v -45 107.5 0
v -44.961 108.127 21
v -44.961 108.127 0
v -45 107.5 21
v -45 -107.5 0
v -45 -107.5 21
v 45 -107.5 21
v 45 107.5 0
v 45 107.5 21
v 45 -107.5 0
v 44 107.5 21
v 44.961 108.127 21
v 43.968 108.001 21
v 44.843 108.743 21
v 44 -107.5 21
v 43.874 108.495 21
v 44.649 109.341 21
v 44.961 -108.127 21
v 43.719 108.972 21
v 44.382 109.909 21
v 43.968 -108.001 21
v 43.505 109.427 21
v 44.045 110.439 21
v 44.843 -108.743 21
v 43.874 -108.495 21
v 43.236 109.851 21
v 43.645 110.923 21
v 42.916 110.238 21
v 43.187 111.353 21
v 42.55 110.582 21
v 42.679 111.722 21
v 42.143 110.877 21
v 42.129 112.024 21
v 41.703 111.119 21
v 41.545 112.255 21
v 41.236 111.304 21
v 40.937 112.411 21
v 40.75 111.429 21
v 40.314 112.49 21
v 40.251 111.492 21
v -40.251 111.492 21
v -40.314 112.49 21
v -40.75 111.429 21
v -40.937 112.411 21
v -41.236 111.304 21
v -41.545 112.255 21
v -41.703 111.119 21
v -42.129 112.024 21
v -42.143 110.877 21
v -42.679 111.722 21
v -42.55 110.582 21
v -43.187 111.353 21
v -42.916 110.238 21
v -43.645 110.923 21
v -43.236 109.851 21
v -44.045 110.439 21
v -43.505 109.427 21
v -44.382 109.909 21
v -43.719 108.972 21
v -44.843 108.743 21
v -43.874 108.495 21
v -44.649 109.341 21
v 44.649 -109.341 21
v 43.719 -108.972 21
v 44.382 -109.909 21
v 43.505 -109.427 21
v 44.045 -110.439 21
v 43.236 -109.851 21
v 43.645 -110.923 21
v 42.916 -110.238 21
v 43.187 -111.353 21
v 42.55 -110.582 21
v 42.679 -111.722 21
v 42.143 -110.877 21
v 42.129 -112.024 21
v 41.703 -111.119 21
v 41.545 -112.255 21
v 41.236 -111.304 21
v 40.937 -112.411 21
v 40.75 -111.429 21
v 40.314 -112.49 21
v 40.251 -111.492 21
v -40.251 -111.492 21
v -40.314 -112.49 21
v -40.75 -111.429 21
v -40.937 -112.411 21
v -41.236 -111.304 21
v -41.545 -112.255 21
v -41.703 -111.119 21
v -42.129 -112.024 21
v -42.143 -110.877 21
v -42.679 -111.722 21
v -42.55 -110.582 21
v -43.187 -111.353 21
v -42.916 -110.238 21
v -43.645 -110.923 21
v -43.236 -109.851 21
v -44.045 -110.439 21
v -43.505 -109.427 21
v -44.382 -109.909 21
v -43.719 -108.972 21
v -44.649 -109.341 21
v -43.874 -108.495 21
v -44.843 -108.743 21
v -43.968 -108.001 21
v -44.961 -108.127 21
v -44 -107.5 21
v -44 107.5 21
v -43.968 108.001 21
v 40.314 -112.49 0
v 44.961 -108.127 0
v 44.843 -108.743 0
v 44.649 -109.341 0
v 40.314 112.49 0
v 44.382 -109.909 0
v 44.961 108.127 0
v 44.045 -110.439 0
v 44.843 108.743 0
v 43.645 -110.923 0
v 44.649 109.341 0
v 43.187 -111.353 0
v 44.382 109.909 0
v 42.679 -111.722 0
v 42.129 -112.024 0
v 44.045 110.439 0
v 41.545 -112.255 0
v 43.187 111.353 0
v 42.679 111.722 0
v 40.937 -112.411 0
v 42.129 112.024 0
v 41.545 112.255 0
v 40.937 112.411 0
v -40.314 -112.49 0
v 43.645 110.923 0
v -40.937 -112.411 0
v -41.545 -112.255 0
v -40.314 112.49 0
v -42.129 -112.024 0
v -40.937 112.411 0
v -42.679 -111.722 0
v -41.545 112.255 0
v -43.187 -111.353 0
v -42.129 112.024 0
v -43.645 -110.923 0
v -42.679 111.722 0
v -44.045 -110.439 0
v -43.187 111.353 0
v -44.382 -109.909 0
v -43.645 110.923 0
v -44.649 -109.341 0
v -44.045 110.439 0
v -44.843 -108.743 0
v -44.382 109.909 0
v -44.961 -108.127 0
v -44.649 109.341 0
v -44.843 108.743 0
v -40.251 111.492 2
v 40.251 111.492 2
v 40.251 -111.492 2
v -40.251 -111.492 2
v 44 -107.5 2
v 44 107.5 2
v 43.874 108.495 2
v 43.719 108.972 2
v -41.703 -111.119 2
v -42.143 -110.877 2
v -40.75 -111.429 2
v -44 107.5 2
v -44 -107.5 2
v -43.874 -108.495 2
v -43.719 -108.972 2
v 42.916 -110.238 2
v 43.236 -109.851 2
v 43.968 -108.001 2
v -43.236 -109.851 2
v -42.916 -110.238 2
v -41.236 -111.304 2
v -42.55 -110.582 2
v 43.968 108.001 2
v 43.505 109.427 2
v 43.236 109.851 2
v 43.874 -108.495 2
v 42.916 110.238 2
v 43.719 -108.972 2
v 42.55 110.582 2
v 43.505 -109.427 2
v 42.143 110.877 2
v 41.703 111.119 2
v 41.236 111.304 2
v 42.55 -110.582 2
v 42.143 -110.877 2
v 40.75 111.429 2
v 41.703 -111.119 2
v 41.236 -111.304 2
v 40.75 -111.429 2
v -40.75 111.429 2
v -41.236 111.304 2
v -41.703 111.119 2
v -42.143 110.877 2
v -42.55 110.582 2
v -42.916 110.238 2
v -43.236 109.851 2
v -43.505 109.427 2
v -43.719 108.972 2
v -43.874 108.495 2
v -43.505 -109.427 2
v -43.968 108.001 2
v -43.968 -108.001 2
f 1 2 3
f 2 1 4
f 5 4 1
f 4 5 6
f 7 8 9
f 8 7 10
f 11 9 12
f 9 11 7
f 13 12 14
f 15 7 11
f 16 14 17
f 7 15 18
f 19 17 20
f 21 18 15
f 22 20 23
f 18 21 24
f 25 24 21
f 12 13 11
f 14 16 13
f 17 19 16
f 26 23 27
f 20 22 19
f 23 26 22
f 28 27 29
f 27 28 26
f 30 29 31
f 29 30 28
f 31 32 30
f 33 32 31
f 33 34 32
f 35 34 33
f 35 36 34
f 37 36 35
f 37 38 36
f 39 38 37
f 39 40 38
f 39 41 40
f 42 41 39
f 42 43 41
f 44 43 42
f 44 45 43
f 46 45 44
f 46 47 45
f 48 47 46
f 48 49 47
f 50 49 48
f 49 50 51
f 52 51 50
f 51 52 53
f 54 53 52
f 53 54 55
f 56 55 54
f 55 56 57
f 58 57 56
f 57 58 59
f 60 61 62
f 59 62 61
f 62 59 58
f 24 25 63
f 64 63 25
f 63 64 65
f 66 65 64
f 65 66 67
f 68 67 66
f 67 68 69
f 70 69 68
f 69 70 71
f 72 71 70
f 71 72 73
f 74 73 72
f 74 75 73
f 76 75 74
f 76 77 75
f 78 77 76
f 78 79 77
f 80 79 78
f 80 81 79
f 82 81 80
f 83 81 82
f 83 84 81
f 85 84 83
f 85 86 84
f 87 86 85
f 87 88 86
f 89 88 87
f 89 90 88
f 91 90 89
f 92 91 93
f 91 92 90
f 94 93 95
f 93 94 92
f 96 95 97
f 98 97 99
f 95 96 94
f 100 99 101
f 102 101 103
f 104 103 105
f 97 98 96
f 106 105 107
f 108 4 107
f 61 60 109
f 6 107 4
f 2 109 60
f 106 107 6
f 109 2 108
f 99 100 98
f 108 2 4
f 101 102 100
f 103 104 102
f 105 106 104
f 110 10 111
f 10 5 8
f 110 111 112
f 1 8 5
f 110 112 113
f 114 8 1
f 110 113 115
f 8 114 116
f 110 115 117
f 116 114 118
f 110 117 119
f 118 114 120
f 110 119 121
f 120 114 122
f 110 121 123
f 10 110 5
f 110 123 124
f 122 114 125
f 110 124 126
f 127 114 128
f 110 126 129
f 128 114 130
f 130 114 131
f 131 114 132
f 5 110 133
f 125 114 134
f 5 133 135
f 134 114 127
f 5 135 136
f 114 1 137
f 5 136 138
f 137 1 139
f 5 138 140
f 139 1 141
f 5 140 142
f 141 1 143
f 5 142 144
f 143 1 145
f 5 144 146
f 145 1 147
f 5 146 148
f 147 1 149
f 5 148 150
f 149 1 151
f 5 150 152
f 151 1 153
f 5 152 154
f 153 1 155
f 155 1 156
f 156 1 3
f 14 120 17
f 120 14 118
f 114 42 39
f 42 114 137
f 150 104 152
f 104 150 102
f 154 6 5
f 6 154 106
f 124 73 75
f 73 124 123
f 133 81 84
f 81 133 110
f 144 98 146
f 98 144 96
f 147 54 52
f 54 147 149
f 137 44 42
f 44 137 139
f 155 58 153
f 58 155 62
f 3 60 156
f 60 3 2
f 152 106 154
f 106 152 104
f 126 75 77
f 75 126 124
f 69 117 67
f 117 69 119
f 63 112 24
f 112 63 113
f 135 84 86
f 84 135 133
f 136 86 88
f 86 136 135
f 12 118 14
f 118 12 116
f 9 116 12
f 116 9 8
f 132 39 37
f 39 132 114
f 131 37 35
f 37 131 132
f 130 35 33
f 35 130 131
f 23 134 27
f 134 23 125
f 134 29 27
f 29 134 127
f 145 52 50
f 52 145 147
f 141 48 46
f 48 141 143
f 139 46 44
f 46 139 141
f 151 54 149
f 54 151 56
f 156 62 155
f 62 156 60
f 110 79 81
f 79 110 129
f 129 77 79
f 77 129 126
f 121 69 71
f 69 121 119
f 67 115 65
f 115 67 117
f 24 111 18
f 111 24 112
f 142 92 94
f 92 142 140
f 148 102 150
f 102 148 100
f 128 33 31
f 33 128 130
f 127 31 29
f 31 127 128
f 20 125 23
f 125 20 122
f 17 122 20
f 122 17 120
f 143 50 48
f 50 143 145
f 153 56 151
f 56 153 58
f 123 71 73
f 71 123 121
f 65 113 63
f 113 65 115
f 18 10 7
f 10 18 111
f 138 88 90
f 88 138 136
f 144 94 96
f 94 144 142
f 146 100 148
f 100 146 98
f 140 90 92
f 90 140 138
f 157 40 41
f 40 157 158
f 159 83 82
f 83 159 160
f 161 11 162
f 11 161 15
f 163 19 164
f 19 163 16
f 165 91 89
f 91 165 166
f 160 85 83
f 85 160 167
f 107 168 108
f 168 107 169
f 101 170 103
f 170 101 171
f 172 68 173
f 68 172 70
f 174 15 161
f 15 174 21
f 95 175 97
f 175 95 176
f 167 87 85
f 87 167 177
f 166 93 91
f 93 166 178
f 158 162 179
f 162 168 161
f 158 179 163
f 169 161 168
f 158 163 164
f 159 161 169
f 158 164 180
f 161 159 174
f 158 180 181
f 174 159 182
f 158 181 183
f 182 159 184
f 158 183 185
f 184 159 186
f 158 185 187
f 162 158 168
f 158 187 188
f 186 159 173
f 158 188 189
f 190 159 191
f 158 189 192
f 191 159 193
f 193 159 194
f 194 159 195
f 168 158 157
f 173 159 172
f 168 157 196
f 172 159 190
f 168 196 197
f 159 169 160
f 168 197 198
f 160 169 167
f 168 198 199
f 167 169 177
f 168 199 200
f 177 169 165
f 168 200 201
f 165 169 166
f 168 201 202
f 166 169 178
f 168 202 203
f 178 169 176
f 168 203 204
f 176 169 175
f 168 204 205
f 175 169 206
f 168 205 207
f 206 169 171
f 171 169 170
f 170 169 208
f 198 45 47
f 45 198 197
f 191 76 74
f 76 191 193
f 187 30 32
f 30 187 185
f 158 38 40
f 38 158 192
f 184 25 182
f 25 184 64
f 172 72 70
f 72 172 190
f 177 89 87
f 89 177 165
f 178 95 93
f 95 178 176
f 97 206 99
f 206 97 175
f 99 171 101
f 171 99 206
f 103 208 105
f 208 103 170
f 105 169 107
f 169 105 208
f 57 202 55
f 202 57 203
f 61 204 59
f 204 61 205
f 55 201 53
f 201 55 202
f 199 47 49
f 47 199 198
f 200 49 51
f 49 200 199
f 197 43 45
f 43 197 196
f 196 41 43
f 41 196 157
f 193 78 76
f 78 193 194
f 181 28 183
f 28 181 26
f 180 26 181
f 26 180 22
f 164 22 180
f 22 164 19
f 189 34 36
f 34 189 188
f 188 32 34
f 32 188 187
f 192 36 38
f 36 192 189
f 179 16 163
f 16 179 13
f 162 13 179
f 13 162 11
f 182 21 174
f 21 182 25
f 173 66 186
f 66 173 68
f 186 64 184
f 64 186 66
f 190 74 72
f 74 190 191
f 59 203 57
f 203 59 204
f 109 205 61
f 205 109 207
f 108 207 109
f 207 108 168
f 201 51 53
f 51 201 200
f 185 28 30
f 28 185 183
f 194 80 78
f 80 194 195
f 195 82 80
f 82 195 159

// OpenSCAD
$fn = 50;


difference() {
	union() {
		hull() {
			translate(v = [-40.0000000000, 107.5000000000, 0]) {
				cylinder(h = 21, r = 5);
			}
			translate(v = [40.0000000000, 107.5000000000, 0]) {
				cylinder(h = 21, r = 5);
			}
			translate(v = [-40.0000000000, -107.5000000000, 0]) {
				cylinder(h = 21, r = 5);
			}
			translate(v = [40.0000000000, -107.5000000000, 0]) {
				cylinder(h = 21, r = 5);
			}
		}
	}
	union() {
		translate(v = [0, 0, 2]) {
			hull() {
				translate(v = [-40.0000000000, 107.5000000000, 0]) {
					cylinder(h = 19, r = 4);
				}
				translate(v = [40.0000000000, 107.5000000000, 0]) {
					cylinder(h = 19, r = 4);
				}
				translate(v = [-40.0000000000, -107.5000000000, 0]) {
					cylinder(h = 19, r = 4);
				}
				translate(v = [40.0000000000, -107.5000000000, 0]) {
					cylinder(h = 19, r = 4);
				}
			}
		}
	}
}
